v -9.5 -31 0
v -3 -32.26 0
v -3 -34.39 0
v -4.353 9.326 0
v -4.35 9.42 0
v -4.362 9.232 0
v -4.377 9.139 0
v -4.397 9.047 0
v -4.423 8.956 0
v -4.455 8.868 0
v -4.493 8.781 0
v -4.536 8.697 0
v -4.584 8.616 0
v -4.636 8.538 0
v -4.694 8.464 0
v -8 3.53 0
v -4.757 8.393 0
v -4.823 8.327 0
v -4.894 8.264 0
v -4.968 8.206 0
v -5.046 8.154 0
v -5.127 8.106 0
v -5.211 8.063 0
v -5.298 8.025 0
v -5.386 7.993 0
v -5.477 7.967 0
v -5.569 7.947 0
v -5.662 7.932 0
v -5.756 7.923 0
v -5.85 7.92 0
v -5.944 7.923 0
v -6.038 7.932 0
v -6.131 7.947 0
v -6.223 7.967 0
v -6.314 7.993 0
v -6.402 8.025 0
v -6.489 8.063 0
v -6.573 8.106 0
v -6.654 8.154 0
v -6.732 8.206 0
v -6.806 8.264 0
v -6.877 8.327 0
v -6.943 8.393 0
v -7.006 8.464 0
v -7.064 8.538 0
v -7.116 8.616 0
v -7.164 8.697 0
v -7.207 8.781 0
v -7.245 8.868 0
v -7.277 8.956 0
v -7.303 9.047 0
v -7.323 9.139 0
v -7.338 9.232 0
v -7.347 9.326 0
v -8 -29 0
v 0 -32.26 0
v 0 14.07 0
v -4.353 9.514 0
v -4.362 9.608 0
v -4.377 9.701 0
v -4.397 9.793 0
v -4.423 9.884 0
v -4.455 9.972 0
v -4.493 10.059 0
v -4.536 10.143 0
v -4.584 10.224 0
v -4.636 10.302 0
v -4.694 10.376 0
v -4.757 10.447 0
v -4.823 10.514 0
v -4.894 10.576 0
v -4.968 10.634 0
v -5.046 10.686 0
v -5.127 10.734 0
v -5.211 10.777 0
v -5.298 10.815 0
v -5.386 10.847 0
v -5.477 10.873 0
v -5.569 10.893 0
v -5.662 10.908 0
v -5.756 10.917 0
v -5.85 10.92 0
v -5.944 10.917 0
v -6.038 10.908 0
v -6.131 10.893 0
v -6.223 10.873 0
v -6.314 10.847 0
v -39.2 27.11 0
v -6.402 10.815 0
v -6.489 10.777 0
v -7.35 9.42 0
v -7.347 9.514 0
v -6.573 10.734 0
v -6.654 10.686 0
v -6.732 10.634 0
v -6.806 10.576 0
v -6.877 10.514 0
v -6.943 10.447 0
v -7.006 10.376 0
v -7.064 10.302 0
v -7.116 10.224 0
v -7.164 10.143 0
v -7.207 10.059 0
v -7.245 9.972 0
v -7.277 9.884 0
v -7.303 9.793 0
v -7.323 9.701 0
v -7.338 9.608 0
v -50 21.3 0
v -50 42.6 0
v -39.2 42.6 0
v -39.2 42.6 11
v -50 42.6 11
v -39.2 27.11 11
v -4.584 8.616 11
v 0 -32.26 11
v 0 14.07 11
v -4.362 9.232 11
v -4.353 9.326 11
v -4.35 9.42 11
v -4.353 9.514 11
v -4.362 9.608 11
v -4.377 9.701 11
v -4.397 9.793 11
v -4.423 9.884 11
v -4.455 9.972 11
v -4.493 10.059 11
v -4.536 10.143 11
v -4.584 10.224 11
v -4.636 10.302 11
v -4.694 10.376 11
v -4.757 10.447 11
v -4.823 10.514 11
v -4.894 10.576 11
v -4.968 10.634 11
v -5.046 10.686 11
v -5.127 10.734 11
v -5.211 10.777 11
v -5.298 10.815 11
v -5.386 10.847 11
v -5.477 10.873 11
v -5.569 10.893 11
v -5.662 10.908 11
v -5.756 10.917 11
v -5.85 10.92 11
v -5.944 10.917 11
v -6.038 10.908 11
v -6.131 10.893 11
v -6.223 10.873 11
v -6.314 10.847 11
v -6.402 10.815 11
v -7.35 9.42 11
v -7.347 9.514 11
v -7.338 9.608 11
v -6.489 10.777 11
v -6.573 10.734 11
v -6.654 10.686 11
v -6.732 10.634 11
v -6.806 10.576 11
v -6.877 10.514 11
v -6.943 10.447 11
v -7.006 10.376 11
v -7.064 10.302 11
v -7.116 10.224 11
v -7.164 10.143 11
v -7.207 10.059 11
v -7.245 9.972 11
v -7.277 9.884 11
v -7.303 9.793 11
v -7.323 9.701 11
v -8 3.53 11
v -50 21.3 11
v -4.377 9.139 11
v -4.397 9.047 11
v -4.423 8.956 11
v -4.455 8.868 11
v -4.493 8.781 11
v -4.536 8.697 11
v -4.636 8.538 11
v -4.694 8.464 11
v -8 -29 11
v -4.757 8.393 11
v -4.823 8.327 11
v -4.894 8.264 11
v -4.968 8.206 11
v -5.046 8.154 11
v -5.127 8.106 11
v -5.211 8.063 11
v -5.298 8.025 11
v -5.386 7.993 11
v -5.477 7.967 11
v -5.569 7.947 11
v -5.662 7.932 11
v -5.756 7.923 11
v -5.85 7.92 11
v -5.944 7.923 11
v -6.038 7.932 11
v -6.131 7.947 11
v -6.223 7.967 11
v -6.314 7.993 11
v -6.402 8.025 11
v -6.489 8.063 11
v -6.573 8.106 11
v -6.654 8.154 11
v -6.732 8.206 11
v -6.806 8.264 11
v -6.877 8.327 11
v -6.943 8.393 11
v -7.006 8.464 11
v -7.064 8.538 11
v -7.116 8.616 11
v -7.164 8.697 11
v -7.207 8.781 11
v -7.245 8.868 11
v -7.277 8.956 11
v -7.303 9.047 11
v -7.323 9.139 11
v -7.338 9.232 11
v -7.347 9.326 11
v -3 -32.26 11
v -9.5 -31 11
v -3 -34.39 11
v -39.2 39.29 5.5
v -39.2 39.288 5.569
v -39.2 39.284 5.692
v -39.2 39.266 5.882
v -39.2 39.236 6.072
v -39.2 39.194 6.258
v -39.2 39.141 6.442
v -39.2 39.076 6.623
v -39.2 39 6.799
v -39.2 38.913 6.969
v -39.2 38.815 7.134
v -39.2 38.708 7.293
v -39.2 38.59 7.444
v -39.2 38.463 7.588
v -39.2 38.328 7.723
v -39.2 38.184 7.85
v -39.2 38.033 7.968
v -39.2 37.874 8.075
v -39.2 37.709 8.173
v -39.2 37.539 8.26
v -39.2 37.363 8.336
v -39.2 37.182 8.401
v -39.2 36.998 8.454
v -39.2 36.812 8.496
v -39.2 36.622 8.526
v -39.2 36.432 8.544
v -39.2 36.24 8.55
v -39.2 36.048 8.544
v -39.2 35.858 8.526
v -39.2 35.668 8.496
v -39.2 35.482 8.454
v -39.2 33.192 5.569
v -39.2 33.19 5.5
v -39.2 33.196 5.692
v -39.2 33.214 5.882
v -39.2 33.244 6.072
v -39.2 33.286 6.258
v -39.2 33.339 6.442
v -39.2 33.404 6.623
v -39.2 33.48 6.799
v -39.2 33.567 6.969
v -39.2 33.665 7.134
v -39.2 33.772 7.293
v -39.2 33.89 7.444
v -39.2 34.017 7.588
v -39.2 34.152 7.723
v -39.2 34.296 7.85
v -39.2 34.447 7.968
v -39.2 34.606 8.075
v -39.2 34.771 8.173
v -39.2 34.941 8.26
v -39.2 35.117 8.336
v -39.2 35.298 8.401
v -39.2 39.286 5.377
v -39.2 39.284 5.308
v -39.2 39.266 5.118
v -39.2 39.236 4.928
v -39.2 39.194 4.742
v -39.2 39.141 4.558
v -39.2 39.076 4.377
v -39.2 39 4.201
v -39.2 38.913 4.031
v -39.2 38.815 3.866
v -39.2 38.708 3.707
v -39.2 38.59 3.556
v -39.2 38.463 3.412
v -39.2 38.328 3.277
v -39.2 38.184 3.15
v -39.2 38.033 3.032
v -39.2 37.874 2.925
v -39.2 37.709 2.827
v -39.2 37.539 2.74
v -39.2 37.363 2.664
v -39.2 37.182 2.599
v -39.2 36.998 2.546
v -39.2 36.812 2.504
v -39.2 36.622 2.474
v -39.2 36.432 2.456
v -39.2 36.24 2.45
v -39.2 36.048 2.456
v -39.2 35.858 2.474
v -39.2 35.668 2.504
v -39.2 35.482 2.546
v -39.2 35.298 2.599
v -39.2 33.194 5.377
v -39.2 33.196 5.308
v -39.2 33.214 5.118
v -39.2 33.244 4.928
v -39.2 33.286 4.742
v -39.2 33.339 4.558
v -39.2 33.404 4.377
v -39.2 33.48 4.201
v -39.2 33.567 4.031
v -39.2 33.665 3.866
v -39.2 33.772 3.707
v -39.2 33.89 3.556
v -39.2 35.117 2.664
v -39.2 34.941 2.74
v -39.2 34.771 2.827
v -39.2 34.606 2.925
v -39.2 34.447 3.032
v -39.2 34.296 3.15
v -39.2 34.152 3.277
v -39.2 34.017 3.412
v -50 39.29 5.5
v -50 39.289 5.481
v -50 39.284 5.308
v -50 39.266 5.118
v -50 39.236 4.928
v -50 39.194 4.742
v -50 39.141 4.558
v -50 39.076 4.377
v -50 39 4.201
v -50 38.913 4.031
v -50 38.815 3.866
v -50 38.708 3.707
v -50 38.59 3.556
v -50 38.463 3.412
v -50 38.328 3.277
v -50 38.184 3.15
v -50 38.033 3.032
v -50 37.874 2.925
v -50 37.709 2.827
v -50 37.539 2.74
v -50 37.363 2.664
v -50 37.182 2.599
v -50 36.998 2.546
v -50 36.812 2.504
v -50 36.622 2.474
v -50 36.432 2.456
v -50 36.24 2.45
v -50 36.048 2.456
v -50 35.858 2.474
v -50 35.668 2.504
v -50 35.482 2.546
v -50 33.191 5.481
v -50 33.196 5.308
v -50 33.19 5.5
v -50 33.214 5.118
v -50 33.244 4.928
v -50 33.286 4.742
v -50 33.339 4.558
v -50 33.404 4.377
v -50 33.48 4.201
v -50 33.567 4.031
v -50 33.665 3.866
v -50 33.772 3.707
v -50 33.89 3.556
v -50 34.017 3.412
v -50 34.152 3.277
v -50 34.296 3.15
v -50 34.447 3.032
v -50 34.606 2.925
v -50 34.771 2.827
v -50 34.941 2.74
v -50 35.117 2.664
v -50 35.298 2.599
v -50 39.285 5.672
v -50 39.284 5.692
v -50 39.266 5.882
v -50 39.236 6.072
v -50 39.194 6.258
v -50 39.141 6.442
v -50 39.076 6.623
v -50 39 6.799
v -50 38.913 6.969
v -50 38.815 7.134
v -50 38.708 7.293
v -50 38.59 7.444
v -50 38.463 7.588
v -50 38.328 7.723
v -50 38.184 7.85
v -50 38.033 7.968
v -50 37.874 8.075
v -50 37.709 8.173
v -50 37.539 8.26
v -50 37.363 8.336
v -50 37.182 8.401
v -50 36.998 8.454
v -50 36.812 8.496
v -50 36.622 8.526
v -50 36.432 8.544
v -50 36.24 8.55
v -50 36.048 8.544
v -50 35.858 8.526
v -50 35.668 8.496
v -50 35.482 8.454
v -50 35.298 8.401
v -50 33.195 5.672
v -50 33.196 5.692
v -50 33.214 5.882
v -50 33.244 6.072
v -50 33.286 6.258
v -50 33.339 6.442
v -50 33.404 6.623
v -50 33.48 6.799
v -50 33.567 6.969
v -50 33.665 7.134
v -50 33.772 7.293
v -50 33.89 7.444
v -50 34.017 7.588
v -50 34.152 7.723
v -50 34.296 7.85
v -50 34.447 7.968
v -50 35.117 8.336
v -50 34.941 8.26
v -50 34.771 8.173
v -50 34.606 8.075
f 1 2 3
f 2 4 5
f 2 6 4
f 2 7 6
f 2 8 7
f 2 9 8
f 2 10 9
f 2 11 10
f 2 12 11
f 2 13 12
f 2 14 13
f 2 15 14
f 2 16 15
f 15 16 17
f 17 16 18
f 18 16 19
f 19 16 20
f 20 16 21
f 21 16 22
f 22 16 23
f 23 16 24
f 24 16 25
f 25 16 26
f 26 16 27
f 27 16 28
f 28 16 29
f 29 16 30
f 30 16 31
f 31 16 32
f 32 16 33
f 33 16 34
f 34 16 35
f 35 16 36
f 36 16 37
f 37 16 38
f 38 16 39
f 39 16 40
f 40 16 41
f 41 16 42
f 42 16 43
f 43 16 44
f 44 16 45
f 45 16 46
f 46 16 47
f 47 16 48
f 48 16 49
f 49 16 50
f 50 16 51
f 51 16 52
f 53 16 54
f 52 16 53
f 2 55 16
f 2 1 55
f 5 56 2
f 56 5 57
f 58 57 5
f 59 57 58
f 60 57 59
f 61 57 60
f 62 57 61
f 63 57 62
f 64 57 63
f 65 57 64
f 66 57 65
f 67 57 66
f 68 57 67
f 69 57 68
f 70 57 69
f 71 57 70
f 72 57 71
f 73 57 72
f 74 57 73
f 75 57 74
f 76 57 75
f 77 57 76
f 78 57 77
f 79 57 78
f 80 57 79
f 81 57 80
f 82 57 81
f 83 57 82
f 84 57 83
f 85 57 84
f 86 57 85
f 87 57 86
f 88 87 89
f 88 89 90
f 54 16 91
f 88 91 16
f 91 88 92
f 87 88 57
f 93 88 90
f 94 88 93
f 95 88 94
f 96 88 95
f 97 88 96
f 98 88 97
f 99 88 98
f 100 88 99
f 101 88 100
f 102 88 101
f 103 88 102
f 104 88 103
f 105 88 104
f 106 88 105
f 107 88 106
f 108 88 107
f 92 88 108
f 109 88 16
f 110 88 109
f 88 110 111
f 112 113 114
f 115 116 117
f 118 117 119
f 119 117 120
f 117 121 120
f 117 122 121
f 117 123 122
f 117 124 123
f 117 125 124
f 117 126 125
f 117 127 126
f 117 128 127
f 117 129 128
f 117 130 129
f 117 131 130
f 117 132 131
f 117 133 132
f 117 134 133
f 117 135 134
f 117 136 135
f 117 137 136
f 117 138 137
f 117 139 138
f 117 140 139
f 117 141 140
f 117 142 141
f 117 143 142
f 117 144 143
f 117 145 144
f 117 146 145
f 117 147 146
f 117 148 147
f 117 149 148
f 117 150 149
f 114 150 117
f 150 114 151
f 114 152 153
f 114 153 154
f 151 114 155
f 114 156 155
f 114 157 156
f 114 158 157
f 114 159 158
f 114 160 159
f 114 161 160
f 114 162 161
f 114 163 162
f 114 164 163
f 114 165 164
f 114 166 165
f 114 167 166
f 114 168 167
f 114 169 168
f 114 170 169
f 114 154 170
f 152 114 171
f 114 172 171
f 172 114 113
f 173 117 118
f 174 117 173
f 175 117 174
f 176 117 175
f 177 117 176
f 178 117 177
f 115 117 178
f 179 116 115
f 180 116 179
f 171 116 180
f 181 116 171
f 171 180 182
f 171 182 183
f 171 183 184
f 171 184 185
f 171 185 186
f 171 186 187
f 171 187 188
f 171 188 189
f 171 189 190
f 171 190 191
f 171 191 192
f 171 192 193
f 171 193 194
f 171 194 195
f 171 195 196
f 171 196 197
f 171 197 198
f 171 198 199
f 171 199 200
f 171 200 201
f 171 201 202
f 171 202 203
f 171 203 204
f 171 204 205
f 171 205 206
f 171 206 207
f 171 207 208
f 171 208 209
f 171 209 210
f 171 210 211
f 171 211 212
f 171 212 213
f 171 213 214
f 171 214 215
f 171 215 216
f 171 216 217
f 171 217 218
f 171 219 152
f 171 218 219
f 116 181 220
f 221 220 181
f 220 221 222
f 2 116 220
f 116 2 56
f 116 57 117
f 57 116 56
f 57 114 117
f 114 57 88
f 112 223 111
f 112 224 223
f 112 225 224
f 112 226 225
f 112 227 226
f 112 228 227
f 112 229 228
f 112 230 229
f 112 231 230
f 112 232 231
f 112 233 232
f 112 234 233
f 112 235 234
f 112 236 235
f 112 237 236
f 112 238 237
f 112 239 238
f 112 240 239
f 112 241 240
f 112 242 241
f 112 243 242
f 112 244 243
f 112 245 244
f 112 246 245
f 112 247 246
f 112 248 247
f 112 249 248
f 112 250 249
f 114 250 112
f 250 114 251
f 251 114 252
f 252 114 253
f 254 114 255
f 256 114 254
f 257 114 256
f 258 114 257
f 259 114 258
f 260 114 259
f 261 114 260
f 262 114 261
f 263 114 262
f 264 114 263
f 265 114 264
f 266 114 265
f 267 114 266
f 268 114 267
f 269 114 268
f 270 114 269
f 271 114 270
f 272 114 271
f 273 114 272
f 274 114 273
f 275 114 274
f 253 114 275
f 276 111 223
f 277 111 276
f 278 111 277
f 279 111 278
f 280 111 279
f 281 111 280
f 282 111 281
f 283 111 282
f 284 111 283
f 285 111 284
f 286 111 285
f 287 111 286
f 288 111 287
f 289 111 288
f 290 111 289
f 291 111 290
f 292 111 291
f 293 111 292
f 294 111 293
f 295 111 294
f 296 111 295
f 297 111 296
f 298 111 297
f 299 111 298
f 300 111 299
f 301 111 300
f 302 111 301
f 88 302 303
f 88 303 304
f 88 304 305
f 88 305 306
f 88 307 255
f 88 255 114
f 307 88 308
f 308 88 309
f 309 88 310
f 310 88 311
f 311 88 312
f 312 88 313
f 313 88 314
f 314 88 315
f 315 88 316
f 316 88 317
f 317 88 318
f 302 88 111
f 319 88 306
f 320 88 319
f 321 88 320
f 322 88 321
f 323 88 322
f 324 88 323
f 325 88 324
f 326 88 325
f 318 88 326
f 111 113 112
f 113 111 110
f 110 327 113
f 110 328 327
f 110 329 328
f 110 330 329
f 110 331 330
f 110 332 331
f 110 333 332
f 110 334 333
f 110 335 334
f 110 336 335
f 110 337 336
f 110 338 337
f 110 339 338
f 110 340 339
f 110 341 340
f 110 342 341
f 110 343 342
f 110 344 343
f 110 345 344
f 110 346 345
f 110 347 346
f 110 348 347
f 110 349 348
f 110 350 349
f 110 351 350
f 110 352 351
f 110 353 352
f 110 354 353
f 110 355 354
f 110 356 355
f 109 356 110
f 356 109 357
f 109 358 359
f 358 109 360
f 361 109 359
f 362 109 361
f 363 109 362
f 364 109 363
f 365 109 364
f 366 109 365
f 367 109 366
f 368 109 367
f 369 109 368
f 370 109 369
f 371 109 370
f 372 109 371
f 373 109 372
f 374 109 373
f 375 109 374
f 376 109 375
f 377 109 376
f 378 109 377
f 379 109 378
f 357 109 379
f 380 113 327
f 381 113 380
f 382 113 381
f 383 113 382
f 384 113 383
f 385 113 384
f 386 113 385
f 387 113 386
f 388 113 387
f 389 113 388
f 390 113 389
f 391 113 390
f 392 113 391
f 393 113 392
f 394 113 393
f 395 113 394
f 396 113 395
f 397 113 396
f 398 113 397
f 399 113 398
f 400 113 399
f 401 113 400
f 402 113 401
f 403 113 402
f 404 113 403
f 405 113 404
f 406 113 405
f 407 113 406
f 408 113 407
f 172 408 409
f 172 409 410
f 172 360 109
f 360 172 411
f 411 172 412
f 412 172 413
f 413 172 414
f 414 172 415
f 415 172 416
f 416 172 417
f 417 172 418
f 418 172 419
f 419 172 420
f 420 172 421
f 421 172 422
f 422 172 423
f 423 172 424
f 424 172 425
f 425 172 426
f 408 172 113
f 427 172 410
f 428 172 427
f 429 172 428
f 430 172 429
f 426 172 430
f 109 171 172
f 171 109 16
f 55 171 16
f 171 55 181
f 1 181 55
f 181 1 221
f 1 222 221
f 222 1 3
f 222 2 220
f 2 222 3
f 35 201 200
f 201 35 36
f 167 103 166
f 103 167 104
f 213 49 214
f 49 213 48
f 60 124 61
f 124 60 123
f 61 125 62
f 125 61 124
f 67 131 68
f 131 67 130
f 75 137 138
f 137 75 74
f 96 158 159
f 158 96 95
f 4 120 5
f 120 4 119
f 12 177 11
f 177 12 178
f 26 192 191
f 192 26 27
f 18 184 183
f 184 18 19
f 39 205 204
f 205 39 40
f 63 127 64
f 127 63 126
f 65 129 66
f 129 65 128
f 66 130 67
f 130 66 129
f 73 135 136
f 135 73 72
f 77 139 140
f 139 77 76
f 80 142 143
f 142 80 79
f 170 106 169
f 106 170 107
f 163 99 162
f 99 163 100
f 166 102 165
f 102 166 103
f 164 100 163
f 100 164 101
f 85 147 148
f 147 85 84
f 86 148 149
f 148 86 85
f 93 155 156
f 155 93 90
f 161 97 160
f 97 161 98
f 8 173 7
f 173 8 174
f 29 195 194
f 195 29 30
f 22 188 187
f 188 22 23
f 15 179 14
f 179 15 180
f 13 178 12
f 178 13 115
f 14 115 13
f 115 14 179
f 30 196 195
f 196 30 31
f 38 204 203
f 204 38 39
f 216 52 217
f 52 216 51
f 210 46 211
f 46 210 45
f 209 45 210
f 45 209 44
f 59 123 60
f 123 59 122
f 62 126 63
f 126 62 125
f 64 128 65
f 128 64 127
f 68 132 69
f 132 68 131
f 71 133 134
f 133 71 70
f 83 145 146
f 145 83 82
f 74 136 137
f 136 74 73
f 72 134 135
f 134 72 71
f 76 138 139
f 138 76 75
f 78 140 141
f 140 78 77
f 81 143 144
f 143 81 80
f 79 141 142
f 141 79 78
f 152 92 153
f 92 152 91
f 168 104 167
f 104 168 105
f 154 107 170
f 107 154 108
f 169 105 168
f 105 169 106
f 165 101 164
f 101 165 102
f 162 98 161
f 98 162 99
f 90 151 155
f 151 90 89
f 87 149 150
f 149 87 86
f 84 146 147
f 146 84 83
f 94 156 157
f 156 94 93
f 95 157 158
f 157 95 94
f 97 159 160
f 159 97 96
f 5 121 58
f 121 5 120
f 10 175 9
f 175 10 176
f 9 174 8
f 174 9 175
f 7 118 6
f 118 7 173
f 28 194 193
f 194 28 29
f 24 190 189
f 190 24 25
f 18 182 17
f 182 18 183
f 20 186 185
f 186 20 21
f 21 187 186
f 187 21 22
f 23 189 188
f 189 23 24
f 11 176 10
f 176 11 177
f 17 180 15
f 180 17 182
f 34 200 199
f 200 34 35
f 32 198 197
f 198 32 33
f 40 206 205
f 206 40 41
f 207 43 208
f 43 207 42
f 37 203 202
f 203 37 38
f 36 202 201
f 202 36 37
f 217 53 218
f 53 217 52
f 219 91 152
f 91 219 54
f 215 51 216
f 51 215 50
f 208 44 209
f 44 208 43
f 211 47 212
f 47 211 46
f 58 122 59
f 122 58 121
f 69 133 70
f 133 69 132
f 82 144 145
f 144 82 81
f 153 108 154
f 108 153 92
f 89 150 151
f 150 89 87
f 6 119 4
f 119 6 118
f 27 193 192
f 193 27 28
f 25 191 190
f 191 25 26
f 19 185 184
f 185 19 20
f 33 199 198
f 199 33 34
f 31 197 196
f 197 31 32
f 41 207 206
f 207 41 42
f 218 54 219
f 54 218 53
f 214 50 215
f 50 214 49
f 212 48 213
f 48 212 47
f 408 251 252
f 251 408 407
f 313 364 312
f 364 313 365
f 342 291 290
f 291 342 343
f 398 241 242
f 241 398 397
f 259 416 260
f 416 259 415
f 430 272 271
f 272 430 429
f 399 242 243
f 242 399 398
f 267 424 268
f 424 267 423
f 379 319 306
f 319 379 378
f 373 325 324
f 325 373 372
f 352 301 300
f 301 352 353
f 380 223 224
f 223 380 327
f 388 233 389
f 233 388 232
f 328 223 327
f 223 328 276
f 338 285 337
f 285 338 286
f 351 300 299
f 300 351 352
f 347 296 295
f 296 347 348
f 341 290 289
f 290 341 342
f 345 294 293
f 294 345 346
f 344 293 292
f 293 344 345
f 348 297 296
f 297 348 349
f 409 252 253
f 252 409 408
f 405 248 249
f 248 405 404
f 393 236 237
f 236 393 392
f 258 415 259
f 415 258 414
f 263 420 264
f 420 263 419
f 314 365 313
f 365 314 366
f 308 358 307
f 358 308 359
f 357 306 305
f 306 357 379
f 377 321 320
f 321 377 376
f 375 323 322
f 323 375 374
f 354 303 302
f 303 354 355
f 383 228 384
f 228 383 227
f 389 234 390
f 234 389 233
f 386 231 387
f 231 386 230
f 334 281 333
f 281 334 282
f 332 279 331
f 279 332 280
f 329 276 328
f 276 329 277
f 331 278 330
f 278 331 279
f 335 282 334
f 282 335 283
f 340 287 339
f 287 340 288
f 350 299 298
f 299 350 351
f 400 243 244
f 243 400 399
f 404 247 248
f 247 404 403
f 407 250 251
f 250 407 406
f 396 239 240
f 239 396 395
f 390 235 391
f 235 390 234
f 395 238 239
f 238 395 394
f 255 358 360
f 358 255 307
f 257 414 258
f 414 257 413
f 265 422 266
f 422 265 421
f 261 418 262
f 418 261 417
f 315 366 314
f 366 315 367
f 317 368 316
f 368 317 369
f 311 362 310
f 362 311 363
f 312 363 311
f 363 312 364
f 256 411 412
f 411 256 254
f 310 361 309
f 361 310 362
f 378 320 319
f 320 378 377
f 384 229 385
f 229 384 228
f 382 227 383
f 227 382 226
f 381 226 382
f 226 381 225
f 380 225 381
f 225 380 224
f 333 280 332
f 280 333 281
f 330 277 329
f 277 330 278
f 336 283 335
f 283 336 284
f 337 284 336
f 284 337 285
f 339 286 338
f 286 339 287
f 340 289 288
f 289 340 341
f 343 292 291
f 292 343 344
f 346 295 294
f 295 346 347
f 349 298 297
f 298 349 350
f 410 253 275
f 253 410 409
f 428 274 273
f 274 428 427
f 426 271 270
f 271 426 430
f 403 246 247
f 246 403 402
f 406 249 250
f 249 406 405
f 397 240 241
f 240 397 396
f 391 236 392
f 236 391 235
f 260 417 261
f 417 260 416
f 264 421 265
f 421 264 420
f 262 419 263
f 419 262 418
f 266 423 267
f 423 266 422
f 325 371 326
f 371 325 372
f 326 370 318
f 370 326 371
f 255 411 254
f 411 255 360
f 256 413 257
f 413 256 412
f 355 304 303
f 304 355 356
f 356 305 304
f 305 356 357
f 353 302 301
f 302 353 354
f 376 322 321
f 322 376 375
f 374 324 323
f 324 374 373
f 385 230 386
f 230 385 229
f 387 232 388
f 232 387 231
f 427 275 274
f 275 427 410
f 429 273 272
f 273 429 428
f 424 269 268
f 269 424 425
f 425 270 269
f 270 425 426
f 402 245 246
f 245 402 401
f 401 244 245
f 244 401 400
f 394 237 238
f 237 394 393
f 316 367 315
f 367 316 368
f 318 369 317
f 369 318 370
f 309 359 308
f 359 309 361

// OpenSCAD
$fn=100;
 
 module BaseArm() {
     polygon([
         [0, 0],
         [0, 14.07],
         [-39.2, 27.11],
         [-39.2, 42.6],
         [-50, 42.6],
         [-50, 21.3],
         [-8, 3.53],
         [-8, -29],
         [-9.5, -31],
         [-3, -34.39],
         [-3, -32.26],
         [0, -32.26]
     ]);
 }
 
 
 module SlamLatchArm() {
     difference(){
         linear_extrude(height=11){ BaseArm(); }
         translate([-5.85, 9.42, 7]){rotate([0, 0, 0]){
             cylinder(d=3, h=20, center=true);
         }}
         translate([-42, 36.24, 5.5]){rotate([0, 90, 0]){
             cylinder(d=6.1, h=20, center=true);
         }}
     }
     
 }
 
 
 SlamLatchArm();
